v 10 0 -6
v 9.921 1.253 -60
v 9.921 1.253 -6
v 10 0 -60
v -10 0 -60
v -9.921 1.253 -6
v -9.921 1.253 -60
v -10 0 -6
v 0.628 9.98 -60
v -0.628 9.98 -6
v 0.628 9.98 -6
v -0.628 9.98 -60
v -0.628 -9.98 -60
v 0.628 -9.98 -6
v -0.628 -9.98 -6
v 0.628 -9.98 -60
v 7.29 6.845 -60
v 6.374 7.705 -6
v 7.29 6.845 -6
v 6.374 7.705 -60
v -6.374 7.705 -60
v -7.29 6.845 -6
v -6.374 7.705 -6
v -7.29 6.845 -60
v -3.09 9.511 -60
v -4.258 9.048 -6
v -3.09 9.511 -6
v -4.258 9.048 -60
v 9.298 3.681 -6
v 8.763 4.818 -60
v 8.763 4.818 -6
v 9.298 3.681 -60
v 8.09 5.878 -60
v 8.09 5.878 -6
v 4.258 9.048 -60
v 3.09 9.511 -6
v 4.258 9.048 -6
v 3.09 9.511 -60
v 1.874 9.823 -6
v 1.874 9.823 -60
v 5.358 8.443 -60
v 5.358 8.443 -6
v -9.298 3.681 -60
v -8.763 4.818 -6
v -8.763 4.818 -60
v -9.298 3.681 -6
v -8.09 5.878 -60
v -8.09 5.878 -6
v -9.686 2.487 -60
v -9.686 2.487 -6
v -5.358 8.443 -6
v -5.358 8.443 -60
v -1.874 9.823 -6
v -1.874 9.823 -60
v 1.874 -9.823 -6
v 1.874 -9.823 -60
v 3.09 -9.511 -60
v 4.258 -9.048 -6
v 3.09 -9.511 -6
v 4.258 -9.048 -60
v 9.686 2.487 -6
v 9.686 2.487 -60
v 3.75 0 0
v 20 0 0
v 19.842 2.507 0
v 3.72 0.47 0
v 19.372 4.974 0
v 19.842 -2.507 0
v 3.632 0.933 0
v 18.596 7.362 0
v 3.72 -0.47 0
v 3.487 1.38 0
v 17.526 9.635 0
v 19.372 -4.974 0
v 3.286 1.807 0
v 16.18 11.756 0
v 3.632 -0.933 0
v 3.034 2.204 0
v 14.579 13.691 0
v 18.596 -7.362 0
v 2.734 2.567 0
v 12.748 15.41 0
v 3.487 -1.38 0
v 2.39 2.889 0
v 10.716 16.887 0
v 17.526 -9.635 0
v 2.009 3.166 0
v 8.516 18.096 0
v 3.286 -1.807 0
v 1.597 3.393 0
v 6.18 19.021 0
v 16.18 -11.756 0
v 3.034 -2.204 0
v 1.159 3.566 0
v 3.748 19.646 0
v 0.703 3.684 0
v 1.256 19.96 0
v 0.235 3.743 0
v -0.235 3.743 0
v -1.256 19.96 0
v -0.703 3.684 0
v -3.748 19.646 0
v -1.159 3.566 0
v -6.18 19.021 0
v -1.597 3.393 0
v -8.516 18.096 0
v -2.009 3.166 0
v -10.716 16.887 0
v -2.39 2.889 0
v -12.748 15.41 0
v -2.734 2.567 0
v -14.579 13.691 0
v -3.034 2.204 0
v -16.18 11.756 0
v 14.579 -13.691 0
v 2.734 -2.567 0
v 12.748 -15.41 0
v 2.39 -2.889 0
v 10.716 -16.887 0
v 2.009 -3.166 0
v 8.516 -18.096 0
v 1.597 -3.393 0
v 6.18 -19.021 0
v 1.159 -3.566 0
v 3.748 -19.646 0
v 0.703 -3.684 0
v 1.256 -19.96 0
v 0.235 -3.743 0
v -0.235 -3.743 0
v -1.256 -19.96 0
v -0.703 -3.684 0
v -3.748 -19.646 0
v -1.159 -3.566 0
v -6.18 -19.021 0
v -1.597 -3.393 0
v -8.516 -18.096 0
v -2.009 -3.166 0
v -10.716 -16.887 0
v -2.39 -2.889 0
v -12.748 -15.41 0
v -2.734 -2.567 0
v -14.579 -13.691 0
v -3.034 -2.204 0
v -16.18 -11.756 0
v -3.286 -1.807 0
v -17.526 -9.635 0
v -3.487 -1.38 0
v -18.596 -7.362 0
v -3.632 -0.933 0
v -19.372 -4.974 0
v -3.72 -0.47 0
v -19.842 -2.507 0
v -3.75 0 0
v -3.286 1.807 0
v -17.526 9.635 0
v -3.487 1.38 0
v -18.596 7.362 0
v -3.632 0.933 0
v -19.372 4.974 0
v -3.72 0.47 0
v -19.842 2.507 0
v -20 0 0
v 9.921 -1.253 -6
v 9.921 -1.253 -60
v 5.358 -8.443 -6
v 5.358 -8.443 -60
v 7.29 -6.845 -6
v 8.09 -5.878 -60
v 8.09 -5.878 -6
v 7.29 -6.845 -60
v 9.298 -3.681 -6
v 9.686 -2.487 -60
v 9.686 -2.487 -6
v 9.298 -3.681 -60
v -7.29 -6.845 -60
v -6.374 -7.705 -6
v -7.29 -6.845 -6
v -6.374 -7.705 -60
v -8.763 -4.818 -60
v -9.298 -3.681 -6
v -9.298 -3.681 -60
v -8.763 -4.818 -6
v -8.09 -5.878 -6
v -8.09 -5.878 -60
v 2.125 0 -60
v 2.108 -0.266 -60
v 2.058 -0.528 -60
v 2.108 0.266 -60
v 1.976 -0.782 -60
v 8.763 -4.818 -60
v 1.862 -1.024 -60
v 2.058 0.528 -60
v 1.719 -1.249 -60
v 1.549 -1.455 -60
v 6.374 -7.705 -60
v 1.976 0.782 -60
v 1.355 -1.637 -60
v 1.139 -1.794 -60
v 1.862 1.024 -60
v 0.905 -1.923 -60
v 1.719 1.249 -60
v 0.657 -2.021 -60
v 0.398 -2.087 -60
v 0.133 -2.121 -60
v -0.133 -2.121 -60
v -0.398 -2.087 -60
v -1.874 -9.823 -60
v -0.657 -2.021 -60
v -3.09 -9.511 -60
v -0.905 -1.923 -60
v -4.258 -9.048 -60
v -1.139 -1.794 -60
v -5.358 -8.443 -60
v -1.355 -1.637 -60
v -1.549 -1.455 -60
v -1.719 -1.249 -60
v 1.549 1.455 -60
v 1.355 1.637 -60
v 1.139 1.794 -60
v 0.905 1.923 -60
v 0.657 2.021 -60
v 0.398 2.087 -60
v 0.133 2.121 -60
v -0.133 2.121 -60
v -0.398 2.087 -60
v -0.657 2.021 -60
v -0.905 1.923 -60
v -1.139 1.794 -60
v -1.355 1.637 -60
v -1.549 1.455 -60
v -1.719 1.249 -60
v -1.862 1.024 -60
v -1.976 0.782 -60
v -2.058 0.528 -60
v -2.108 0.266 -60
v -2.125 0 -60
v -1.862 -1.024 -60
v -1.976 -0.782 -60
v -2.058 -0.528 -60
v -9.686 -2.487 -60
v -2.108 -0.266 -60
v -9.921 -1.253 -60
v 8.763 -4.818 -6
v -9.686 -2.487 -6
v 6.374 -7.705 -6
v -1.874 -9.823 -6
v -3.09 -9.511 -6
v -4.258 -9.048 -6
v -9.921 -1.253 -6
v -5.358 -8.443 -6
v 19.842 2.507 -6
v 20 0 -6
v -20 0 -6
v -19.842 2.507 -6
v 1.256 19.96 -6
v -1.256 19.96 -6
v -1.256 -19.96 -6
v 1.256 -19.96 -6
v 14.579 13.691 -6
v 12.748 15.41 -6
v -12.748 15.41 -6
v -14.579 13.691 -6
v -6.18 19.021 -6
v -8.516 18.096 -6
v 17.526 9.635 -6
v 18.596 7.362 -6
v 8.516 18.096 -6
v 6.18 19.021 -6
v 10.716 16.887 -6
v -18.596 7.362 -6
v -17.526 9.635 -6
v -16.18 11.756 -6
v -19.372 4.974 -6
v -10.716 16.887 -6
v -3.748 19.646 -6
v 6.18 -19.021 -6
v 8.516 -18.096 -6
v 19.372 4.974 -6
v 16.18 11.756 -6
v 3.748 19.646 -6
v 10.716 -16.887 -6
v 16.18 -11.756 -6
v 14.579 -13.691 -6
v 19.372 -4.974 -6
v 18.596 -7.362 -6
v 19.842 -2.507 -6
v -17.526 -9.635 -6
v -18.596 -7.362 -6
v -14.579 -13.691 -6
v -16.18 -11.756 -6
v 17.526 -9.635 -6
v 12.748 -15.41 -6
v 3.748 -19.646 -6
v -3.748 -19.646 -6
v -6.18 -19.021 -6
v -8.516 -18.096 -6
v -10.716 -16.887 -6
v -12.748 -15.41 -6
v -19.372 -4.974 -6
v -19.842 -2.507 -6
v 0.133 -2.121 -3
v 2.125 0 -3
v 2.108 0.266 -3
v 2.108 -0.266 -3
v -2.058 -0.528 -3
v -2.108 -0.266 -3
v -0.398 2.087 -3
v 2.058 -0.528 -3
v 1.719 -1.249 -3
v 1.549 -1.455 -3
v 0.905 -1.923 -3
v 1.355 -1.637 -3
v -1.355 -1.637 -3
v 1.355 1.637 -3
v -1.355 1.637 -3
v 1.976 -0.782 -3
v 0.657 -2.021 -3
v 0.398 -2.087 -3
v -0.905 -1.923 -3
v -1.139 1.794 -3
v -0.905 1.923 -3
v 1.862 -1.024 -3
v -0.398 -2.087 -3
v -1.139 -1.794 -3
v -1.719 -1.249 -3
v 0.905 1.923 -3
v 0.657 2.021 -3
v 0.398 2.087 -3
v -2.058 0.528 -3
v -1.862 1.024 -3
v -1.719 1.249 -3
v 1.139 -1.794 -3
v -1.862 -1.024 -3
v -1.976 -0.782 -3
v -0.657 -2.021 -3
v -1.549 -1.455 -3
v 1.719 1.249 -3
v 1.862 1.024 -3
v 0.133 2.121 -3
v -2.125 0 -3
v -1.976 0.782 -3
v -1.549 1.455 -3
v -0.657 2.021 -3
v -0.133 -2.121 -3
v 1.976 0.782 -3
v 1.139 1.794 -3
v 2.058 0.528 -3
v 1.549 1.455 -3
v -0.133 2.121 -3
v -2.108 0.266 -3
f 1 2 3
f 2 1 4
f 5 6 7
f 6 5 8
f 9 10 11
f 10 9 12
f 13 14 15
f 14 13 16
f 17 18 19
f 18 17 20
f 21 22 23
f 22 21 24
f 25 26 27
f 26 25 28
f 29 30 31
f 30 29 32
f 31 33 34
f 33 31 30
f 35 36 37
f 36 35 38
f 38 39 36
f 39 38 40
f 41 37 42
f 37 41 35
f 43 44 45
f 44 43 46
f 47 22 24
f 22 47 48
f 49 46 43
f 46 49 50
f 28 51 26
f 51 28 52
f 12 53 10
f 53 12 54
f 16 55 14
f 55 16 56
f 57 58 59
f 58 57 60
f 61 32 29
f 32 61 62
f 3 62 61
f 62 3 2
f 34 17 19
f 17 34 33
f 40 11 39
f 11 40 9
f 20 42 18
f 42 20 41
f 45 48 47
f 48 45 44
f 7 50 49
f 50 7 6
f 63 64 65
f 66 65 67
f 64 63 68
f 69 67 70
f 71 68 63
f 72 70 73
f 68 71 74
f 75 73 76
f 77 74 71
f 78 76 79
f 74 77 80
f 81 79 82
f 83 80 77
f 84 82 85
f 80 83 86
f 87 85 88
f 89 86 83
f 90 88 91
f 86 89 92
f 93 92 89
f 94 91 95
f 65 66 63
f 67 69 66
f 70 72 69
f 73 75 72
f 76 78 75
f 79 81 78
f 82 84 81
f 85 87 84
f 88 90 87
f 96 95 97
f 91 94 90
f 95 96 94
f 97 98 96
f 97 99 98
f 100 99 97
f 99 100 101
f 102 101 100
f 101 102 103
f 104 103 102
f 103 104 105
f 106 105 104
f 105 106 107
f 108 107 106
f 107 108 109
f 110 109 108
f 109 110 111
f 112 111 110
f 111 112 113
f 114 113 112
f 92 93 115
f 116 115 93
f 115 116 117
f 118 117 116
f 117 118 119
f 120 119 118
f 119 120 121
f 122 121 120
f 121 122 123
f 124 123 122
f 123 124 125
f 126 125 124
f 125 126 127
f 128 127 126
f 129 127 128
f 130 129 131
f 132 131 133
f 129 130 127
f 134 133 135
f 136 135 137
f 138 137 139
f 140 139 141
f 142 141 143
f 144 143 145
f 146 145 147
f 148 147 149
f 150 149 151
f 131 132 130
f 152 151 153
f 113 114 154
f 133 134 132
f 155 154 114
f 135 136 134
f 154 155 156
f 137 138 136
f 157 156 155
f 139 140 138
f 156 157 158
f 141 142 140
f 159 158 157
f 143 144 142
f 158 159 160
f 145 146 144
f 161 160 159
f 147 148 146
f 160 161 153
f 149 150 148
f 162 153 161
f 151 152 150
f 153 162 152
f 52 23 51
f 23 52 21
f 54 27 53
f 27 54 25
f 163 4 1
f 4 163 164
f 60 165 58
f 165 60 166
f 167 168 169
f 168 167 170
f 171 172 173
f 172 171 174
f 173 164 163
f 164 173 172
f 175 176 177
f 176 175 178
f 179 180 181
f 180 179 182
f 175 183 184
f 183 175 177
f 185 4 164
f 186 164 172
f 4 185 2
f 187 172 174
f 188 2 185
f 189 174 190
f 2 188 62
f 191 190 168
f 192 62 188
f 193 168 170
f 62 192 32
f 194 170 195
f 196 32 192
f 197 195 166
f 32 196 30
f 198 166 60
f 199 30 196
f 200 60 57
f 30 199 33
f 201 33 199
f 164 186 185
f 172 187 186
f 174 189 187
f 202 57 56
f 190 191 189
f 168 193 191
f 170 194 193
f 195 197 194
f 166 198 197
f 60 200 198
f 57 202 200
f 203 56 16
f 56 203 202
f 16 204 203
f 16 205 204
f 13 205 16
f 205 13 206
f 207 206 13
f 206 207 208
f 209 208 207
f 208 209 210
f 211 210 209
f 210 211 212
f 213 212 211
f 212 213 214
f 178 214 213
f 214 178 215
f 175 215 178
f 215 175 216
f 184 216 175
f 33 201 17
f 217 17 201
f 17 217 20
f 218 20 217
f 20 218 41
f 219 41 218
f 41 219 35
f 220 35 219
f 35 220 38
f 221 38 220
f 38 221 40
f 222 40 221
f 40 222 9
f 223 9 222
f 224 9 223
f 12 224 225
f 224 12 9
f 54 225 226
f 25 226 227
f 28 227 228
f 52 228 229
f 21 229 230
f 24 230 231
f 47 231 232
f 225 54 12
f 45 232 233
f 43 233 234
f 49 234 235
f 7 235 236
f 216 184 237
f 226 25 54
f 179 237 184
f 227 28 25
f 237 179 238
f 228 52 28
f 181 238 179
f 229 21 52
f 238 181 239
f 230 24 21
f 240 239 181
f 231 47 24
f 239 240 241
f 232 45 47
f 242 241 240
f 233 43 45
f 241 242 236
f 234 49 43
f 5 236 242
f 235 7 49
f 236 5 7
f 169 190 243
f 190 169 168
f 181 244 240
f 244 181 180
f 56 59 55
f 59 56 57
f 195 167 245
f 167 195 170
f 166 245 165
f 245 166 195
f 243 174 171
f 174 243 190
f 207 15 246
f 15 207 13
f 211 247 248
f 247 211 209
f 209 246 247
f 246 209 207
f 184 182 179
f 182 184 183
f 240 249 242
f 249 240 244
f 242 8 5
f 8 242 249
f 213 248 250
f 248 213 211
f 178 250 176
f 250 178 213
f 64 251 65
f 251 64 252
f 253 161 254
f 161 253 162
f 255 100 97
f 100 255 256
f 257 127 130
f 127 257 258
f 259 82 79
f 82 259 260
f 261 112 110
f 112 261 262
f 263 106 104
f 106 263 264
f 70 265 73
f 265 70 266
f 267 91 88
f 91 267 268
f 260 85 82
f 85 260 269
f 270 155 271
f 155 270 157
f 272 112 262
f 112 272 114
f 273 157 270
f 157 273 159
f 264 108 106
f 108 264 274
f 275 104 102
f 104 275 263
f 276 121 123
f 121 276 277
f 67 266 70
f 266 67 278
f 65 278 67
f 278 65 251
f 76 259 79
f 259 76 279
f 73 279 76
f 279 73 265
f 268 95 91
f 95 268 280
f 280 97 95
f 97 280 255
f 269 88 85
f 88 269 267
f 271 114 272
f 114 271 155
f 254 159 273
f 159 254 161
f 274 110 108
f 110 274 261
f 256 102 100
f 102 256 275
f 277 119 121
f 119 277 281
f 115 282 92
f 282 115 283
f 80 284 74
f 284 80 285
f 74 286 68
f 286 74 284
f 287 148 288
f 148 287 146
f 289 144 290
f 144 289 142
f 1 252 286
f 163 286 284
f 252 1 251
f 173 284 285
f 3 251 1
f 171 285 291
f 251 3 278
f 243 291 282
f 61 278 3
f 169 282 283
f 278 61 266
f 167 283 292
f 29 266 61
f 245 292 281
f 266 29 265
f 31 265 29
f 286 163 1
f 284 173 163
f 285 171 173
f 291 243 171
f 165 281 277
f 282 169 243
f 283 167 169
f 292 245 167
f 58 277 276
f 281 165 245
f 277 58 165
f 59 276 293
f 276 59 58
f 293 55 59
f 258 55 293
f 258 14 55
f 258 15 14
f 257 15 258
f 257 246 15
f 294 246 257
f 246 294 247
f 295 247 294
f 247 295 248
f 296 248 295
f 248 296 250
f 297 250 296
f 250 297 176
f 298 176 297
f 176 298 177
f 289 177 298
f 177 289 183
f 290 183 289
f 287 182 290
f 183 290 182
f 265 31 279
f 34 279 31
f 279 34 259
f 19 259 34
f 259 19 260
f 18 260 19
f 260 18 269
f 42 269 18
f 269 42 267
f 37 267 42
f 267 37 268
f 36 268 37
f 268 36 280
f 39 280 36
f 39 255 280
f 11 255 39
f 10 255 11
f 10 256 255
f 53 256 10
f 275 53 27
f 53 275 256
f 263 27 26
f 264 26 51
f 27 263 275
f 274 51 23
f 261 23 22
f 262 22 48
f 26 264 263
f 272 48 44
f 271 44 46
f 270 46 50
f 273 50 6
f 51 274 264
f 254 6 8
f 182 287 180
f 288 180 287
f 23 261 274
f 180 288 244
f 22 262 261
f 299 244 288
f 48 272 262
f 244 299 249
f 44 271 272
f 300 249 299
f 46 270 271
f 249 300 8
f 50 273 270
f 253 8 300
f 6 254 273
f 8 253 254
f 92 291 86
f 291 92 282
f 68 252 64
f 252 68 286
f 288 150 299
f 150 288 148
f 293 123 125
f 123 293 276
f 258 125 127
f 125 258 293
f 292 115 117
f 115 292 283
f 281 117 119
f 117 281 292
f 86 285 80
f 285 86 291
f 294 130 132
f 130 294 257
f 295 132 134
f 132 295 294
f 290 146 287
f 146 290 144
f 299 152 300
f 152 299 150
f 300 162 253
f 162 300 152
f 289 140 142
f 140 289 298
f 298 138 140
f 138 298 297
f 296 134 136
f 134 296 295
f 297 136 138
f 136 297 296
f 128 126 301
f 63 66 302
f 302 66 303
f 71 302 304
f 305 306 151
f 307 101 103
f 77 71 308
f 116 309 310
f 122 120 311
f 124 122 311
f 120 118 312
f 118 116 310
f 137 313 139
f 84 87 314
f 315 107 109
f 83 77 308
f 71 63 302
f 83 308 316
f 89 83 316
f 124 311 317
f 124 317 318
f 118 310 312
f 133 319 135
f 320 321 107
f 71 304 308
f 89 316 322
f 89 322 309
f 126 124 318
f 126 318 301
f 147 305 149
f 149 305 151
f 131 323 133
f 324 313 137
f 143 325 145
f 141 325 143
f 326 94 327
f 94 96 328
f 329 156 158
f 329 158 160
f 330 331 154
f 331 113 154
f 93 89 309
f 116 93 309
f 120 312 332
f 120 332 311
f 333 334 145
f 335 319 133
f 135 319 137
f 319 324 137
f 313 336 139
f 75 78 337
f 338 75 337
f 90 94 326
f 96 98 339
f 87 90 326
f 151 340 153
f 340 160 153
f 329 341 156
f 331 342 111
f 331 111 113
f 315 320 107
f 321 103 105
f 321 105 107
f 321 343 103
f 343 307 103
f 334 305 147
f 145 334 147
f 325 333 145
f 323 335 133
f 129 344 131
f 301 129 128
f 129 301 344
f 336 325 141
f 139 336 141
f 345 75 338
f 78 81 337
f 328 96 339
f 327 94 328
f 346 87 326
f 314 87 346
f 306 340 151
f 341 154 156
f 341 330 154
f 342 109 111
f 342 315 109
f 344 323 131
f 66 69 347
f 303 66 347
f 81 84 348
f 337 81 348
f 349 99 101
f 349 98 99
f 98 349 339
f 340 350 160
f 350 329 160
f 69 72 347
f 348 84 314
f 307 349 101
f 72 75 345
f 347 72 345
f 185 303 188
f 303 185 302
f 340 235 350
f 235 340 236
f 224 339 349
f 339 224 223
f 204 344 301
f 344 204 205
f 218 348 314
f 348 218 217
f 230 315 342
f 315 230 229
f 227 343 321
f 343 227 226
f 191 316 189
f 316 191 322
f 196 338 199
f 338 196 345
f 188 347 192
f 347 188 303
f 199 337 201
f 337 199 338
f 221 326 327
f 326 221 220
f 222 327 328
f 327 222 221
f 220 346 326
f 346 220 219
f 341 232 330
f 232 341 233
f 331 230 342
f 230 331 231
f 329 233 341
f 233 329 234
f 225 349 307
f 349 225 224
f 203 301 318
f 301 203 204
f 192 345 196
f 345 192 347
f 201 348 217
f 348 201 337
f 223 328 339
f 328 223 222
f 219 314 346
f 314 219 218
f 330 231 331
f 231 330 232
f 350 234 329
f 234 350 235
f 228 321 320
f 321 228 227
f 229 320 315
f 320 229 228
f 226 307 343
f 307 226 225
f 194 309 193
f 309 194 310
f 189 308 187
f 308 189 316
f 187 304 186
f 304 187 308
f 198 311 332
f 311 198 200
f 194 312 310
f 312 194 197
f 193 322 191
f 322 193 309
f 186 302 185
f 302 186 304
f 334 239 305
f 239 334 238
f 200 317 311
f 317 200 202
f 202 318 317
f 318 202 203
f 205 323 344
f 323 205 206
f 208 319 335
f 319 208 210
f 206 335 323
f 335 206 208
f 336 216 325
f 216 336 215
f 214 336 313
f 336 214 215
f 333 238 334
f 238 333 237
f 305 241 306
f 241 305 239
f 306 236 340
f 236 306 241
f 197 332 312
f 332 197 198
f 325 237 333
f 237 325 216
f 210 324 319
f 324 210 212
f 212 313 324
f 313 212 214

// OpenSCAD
$fn = 50;


difference() {
	union() {
		translate(v = [0, 0, -60.0000000000]) {
			cylinder(h = 60, r = 10.0000000000);
		}
		translate(v = [0, 0, -6.0000000000]) {
			cylinder(h = 6, r = 20.0000000000);
		}
	}
	union() {
		translate(v = [0, 0, 0]) {
			rotate(a = [0, 0, 0]) {
				difference() {
					union() {
						#translate(v = [0, 0, -60.0000000000]) {
							cylinder(h = 60, r = 2.0000000000);
						}
						#translate(v = [0, 0, -3]) {
							cylinder(h = 3, r = 10.0000000000, r1 = 2.1250000000, r2 = 3.7500000000);
						}
						#translate(v = [0, 0, -60.0000000000]) {
							cylinder(h = 60, r = 2.1250000000);
						}
						#translate(v = [0, 0, -60.0000000000]) {
							cylinder(h = 60, r = 2.0000000000);
						}
					}
					union();
				}
			}
		}
	}
}
